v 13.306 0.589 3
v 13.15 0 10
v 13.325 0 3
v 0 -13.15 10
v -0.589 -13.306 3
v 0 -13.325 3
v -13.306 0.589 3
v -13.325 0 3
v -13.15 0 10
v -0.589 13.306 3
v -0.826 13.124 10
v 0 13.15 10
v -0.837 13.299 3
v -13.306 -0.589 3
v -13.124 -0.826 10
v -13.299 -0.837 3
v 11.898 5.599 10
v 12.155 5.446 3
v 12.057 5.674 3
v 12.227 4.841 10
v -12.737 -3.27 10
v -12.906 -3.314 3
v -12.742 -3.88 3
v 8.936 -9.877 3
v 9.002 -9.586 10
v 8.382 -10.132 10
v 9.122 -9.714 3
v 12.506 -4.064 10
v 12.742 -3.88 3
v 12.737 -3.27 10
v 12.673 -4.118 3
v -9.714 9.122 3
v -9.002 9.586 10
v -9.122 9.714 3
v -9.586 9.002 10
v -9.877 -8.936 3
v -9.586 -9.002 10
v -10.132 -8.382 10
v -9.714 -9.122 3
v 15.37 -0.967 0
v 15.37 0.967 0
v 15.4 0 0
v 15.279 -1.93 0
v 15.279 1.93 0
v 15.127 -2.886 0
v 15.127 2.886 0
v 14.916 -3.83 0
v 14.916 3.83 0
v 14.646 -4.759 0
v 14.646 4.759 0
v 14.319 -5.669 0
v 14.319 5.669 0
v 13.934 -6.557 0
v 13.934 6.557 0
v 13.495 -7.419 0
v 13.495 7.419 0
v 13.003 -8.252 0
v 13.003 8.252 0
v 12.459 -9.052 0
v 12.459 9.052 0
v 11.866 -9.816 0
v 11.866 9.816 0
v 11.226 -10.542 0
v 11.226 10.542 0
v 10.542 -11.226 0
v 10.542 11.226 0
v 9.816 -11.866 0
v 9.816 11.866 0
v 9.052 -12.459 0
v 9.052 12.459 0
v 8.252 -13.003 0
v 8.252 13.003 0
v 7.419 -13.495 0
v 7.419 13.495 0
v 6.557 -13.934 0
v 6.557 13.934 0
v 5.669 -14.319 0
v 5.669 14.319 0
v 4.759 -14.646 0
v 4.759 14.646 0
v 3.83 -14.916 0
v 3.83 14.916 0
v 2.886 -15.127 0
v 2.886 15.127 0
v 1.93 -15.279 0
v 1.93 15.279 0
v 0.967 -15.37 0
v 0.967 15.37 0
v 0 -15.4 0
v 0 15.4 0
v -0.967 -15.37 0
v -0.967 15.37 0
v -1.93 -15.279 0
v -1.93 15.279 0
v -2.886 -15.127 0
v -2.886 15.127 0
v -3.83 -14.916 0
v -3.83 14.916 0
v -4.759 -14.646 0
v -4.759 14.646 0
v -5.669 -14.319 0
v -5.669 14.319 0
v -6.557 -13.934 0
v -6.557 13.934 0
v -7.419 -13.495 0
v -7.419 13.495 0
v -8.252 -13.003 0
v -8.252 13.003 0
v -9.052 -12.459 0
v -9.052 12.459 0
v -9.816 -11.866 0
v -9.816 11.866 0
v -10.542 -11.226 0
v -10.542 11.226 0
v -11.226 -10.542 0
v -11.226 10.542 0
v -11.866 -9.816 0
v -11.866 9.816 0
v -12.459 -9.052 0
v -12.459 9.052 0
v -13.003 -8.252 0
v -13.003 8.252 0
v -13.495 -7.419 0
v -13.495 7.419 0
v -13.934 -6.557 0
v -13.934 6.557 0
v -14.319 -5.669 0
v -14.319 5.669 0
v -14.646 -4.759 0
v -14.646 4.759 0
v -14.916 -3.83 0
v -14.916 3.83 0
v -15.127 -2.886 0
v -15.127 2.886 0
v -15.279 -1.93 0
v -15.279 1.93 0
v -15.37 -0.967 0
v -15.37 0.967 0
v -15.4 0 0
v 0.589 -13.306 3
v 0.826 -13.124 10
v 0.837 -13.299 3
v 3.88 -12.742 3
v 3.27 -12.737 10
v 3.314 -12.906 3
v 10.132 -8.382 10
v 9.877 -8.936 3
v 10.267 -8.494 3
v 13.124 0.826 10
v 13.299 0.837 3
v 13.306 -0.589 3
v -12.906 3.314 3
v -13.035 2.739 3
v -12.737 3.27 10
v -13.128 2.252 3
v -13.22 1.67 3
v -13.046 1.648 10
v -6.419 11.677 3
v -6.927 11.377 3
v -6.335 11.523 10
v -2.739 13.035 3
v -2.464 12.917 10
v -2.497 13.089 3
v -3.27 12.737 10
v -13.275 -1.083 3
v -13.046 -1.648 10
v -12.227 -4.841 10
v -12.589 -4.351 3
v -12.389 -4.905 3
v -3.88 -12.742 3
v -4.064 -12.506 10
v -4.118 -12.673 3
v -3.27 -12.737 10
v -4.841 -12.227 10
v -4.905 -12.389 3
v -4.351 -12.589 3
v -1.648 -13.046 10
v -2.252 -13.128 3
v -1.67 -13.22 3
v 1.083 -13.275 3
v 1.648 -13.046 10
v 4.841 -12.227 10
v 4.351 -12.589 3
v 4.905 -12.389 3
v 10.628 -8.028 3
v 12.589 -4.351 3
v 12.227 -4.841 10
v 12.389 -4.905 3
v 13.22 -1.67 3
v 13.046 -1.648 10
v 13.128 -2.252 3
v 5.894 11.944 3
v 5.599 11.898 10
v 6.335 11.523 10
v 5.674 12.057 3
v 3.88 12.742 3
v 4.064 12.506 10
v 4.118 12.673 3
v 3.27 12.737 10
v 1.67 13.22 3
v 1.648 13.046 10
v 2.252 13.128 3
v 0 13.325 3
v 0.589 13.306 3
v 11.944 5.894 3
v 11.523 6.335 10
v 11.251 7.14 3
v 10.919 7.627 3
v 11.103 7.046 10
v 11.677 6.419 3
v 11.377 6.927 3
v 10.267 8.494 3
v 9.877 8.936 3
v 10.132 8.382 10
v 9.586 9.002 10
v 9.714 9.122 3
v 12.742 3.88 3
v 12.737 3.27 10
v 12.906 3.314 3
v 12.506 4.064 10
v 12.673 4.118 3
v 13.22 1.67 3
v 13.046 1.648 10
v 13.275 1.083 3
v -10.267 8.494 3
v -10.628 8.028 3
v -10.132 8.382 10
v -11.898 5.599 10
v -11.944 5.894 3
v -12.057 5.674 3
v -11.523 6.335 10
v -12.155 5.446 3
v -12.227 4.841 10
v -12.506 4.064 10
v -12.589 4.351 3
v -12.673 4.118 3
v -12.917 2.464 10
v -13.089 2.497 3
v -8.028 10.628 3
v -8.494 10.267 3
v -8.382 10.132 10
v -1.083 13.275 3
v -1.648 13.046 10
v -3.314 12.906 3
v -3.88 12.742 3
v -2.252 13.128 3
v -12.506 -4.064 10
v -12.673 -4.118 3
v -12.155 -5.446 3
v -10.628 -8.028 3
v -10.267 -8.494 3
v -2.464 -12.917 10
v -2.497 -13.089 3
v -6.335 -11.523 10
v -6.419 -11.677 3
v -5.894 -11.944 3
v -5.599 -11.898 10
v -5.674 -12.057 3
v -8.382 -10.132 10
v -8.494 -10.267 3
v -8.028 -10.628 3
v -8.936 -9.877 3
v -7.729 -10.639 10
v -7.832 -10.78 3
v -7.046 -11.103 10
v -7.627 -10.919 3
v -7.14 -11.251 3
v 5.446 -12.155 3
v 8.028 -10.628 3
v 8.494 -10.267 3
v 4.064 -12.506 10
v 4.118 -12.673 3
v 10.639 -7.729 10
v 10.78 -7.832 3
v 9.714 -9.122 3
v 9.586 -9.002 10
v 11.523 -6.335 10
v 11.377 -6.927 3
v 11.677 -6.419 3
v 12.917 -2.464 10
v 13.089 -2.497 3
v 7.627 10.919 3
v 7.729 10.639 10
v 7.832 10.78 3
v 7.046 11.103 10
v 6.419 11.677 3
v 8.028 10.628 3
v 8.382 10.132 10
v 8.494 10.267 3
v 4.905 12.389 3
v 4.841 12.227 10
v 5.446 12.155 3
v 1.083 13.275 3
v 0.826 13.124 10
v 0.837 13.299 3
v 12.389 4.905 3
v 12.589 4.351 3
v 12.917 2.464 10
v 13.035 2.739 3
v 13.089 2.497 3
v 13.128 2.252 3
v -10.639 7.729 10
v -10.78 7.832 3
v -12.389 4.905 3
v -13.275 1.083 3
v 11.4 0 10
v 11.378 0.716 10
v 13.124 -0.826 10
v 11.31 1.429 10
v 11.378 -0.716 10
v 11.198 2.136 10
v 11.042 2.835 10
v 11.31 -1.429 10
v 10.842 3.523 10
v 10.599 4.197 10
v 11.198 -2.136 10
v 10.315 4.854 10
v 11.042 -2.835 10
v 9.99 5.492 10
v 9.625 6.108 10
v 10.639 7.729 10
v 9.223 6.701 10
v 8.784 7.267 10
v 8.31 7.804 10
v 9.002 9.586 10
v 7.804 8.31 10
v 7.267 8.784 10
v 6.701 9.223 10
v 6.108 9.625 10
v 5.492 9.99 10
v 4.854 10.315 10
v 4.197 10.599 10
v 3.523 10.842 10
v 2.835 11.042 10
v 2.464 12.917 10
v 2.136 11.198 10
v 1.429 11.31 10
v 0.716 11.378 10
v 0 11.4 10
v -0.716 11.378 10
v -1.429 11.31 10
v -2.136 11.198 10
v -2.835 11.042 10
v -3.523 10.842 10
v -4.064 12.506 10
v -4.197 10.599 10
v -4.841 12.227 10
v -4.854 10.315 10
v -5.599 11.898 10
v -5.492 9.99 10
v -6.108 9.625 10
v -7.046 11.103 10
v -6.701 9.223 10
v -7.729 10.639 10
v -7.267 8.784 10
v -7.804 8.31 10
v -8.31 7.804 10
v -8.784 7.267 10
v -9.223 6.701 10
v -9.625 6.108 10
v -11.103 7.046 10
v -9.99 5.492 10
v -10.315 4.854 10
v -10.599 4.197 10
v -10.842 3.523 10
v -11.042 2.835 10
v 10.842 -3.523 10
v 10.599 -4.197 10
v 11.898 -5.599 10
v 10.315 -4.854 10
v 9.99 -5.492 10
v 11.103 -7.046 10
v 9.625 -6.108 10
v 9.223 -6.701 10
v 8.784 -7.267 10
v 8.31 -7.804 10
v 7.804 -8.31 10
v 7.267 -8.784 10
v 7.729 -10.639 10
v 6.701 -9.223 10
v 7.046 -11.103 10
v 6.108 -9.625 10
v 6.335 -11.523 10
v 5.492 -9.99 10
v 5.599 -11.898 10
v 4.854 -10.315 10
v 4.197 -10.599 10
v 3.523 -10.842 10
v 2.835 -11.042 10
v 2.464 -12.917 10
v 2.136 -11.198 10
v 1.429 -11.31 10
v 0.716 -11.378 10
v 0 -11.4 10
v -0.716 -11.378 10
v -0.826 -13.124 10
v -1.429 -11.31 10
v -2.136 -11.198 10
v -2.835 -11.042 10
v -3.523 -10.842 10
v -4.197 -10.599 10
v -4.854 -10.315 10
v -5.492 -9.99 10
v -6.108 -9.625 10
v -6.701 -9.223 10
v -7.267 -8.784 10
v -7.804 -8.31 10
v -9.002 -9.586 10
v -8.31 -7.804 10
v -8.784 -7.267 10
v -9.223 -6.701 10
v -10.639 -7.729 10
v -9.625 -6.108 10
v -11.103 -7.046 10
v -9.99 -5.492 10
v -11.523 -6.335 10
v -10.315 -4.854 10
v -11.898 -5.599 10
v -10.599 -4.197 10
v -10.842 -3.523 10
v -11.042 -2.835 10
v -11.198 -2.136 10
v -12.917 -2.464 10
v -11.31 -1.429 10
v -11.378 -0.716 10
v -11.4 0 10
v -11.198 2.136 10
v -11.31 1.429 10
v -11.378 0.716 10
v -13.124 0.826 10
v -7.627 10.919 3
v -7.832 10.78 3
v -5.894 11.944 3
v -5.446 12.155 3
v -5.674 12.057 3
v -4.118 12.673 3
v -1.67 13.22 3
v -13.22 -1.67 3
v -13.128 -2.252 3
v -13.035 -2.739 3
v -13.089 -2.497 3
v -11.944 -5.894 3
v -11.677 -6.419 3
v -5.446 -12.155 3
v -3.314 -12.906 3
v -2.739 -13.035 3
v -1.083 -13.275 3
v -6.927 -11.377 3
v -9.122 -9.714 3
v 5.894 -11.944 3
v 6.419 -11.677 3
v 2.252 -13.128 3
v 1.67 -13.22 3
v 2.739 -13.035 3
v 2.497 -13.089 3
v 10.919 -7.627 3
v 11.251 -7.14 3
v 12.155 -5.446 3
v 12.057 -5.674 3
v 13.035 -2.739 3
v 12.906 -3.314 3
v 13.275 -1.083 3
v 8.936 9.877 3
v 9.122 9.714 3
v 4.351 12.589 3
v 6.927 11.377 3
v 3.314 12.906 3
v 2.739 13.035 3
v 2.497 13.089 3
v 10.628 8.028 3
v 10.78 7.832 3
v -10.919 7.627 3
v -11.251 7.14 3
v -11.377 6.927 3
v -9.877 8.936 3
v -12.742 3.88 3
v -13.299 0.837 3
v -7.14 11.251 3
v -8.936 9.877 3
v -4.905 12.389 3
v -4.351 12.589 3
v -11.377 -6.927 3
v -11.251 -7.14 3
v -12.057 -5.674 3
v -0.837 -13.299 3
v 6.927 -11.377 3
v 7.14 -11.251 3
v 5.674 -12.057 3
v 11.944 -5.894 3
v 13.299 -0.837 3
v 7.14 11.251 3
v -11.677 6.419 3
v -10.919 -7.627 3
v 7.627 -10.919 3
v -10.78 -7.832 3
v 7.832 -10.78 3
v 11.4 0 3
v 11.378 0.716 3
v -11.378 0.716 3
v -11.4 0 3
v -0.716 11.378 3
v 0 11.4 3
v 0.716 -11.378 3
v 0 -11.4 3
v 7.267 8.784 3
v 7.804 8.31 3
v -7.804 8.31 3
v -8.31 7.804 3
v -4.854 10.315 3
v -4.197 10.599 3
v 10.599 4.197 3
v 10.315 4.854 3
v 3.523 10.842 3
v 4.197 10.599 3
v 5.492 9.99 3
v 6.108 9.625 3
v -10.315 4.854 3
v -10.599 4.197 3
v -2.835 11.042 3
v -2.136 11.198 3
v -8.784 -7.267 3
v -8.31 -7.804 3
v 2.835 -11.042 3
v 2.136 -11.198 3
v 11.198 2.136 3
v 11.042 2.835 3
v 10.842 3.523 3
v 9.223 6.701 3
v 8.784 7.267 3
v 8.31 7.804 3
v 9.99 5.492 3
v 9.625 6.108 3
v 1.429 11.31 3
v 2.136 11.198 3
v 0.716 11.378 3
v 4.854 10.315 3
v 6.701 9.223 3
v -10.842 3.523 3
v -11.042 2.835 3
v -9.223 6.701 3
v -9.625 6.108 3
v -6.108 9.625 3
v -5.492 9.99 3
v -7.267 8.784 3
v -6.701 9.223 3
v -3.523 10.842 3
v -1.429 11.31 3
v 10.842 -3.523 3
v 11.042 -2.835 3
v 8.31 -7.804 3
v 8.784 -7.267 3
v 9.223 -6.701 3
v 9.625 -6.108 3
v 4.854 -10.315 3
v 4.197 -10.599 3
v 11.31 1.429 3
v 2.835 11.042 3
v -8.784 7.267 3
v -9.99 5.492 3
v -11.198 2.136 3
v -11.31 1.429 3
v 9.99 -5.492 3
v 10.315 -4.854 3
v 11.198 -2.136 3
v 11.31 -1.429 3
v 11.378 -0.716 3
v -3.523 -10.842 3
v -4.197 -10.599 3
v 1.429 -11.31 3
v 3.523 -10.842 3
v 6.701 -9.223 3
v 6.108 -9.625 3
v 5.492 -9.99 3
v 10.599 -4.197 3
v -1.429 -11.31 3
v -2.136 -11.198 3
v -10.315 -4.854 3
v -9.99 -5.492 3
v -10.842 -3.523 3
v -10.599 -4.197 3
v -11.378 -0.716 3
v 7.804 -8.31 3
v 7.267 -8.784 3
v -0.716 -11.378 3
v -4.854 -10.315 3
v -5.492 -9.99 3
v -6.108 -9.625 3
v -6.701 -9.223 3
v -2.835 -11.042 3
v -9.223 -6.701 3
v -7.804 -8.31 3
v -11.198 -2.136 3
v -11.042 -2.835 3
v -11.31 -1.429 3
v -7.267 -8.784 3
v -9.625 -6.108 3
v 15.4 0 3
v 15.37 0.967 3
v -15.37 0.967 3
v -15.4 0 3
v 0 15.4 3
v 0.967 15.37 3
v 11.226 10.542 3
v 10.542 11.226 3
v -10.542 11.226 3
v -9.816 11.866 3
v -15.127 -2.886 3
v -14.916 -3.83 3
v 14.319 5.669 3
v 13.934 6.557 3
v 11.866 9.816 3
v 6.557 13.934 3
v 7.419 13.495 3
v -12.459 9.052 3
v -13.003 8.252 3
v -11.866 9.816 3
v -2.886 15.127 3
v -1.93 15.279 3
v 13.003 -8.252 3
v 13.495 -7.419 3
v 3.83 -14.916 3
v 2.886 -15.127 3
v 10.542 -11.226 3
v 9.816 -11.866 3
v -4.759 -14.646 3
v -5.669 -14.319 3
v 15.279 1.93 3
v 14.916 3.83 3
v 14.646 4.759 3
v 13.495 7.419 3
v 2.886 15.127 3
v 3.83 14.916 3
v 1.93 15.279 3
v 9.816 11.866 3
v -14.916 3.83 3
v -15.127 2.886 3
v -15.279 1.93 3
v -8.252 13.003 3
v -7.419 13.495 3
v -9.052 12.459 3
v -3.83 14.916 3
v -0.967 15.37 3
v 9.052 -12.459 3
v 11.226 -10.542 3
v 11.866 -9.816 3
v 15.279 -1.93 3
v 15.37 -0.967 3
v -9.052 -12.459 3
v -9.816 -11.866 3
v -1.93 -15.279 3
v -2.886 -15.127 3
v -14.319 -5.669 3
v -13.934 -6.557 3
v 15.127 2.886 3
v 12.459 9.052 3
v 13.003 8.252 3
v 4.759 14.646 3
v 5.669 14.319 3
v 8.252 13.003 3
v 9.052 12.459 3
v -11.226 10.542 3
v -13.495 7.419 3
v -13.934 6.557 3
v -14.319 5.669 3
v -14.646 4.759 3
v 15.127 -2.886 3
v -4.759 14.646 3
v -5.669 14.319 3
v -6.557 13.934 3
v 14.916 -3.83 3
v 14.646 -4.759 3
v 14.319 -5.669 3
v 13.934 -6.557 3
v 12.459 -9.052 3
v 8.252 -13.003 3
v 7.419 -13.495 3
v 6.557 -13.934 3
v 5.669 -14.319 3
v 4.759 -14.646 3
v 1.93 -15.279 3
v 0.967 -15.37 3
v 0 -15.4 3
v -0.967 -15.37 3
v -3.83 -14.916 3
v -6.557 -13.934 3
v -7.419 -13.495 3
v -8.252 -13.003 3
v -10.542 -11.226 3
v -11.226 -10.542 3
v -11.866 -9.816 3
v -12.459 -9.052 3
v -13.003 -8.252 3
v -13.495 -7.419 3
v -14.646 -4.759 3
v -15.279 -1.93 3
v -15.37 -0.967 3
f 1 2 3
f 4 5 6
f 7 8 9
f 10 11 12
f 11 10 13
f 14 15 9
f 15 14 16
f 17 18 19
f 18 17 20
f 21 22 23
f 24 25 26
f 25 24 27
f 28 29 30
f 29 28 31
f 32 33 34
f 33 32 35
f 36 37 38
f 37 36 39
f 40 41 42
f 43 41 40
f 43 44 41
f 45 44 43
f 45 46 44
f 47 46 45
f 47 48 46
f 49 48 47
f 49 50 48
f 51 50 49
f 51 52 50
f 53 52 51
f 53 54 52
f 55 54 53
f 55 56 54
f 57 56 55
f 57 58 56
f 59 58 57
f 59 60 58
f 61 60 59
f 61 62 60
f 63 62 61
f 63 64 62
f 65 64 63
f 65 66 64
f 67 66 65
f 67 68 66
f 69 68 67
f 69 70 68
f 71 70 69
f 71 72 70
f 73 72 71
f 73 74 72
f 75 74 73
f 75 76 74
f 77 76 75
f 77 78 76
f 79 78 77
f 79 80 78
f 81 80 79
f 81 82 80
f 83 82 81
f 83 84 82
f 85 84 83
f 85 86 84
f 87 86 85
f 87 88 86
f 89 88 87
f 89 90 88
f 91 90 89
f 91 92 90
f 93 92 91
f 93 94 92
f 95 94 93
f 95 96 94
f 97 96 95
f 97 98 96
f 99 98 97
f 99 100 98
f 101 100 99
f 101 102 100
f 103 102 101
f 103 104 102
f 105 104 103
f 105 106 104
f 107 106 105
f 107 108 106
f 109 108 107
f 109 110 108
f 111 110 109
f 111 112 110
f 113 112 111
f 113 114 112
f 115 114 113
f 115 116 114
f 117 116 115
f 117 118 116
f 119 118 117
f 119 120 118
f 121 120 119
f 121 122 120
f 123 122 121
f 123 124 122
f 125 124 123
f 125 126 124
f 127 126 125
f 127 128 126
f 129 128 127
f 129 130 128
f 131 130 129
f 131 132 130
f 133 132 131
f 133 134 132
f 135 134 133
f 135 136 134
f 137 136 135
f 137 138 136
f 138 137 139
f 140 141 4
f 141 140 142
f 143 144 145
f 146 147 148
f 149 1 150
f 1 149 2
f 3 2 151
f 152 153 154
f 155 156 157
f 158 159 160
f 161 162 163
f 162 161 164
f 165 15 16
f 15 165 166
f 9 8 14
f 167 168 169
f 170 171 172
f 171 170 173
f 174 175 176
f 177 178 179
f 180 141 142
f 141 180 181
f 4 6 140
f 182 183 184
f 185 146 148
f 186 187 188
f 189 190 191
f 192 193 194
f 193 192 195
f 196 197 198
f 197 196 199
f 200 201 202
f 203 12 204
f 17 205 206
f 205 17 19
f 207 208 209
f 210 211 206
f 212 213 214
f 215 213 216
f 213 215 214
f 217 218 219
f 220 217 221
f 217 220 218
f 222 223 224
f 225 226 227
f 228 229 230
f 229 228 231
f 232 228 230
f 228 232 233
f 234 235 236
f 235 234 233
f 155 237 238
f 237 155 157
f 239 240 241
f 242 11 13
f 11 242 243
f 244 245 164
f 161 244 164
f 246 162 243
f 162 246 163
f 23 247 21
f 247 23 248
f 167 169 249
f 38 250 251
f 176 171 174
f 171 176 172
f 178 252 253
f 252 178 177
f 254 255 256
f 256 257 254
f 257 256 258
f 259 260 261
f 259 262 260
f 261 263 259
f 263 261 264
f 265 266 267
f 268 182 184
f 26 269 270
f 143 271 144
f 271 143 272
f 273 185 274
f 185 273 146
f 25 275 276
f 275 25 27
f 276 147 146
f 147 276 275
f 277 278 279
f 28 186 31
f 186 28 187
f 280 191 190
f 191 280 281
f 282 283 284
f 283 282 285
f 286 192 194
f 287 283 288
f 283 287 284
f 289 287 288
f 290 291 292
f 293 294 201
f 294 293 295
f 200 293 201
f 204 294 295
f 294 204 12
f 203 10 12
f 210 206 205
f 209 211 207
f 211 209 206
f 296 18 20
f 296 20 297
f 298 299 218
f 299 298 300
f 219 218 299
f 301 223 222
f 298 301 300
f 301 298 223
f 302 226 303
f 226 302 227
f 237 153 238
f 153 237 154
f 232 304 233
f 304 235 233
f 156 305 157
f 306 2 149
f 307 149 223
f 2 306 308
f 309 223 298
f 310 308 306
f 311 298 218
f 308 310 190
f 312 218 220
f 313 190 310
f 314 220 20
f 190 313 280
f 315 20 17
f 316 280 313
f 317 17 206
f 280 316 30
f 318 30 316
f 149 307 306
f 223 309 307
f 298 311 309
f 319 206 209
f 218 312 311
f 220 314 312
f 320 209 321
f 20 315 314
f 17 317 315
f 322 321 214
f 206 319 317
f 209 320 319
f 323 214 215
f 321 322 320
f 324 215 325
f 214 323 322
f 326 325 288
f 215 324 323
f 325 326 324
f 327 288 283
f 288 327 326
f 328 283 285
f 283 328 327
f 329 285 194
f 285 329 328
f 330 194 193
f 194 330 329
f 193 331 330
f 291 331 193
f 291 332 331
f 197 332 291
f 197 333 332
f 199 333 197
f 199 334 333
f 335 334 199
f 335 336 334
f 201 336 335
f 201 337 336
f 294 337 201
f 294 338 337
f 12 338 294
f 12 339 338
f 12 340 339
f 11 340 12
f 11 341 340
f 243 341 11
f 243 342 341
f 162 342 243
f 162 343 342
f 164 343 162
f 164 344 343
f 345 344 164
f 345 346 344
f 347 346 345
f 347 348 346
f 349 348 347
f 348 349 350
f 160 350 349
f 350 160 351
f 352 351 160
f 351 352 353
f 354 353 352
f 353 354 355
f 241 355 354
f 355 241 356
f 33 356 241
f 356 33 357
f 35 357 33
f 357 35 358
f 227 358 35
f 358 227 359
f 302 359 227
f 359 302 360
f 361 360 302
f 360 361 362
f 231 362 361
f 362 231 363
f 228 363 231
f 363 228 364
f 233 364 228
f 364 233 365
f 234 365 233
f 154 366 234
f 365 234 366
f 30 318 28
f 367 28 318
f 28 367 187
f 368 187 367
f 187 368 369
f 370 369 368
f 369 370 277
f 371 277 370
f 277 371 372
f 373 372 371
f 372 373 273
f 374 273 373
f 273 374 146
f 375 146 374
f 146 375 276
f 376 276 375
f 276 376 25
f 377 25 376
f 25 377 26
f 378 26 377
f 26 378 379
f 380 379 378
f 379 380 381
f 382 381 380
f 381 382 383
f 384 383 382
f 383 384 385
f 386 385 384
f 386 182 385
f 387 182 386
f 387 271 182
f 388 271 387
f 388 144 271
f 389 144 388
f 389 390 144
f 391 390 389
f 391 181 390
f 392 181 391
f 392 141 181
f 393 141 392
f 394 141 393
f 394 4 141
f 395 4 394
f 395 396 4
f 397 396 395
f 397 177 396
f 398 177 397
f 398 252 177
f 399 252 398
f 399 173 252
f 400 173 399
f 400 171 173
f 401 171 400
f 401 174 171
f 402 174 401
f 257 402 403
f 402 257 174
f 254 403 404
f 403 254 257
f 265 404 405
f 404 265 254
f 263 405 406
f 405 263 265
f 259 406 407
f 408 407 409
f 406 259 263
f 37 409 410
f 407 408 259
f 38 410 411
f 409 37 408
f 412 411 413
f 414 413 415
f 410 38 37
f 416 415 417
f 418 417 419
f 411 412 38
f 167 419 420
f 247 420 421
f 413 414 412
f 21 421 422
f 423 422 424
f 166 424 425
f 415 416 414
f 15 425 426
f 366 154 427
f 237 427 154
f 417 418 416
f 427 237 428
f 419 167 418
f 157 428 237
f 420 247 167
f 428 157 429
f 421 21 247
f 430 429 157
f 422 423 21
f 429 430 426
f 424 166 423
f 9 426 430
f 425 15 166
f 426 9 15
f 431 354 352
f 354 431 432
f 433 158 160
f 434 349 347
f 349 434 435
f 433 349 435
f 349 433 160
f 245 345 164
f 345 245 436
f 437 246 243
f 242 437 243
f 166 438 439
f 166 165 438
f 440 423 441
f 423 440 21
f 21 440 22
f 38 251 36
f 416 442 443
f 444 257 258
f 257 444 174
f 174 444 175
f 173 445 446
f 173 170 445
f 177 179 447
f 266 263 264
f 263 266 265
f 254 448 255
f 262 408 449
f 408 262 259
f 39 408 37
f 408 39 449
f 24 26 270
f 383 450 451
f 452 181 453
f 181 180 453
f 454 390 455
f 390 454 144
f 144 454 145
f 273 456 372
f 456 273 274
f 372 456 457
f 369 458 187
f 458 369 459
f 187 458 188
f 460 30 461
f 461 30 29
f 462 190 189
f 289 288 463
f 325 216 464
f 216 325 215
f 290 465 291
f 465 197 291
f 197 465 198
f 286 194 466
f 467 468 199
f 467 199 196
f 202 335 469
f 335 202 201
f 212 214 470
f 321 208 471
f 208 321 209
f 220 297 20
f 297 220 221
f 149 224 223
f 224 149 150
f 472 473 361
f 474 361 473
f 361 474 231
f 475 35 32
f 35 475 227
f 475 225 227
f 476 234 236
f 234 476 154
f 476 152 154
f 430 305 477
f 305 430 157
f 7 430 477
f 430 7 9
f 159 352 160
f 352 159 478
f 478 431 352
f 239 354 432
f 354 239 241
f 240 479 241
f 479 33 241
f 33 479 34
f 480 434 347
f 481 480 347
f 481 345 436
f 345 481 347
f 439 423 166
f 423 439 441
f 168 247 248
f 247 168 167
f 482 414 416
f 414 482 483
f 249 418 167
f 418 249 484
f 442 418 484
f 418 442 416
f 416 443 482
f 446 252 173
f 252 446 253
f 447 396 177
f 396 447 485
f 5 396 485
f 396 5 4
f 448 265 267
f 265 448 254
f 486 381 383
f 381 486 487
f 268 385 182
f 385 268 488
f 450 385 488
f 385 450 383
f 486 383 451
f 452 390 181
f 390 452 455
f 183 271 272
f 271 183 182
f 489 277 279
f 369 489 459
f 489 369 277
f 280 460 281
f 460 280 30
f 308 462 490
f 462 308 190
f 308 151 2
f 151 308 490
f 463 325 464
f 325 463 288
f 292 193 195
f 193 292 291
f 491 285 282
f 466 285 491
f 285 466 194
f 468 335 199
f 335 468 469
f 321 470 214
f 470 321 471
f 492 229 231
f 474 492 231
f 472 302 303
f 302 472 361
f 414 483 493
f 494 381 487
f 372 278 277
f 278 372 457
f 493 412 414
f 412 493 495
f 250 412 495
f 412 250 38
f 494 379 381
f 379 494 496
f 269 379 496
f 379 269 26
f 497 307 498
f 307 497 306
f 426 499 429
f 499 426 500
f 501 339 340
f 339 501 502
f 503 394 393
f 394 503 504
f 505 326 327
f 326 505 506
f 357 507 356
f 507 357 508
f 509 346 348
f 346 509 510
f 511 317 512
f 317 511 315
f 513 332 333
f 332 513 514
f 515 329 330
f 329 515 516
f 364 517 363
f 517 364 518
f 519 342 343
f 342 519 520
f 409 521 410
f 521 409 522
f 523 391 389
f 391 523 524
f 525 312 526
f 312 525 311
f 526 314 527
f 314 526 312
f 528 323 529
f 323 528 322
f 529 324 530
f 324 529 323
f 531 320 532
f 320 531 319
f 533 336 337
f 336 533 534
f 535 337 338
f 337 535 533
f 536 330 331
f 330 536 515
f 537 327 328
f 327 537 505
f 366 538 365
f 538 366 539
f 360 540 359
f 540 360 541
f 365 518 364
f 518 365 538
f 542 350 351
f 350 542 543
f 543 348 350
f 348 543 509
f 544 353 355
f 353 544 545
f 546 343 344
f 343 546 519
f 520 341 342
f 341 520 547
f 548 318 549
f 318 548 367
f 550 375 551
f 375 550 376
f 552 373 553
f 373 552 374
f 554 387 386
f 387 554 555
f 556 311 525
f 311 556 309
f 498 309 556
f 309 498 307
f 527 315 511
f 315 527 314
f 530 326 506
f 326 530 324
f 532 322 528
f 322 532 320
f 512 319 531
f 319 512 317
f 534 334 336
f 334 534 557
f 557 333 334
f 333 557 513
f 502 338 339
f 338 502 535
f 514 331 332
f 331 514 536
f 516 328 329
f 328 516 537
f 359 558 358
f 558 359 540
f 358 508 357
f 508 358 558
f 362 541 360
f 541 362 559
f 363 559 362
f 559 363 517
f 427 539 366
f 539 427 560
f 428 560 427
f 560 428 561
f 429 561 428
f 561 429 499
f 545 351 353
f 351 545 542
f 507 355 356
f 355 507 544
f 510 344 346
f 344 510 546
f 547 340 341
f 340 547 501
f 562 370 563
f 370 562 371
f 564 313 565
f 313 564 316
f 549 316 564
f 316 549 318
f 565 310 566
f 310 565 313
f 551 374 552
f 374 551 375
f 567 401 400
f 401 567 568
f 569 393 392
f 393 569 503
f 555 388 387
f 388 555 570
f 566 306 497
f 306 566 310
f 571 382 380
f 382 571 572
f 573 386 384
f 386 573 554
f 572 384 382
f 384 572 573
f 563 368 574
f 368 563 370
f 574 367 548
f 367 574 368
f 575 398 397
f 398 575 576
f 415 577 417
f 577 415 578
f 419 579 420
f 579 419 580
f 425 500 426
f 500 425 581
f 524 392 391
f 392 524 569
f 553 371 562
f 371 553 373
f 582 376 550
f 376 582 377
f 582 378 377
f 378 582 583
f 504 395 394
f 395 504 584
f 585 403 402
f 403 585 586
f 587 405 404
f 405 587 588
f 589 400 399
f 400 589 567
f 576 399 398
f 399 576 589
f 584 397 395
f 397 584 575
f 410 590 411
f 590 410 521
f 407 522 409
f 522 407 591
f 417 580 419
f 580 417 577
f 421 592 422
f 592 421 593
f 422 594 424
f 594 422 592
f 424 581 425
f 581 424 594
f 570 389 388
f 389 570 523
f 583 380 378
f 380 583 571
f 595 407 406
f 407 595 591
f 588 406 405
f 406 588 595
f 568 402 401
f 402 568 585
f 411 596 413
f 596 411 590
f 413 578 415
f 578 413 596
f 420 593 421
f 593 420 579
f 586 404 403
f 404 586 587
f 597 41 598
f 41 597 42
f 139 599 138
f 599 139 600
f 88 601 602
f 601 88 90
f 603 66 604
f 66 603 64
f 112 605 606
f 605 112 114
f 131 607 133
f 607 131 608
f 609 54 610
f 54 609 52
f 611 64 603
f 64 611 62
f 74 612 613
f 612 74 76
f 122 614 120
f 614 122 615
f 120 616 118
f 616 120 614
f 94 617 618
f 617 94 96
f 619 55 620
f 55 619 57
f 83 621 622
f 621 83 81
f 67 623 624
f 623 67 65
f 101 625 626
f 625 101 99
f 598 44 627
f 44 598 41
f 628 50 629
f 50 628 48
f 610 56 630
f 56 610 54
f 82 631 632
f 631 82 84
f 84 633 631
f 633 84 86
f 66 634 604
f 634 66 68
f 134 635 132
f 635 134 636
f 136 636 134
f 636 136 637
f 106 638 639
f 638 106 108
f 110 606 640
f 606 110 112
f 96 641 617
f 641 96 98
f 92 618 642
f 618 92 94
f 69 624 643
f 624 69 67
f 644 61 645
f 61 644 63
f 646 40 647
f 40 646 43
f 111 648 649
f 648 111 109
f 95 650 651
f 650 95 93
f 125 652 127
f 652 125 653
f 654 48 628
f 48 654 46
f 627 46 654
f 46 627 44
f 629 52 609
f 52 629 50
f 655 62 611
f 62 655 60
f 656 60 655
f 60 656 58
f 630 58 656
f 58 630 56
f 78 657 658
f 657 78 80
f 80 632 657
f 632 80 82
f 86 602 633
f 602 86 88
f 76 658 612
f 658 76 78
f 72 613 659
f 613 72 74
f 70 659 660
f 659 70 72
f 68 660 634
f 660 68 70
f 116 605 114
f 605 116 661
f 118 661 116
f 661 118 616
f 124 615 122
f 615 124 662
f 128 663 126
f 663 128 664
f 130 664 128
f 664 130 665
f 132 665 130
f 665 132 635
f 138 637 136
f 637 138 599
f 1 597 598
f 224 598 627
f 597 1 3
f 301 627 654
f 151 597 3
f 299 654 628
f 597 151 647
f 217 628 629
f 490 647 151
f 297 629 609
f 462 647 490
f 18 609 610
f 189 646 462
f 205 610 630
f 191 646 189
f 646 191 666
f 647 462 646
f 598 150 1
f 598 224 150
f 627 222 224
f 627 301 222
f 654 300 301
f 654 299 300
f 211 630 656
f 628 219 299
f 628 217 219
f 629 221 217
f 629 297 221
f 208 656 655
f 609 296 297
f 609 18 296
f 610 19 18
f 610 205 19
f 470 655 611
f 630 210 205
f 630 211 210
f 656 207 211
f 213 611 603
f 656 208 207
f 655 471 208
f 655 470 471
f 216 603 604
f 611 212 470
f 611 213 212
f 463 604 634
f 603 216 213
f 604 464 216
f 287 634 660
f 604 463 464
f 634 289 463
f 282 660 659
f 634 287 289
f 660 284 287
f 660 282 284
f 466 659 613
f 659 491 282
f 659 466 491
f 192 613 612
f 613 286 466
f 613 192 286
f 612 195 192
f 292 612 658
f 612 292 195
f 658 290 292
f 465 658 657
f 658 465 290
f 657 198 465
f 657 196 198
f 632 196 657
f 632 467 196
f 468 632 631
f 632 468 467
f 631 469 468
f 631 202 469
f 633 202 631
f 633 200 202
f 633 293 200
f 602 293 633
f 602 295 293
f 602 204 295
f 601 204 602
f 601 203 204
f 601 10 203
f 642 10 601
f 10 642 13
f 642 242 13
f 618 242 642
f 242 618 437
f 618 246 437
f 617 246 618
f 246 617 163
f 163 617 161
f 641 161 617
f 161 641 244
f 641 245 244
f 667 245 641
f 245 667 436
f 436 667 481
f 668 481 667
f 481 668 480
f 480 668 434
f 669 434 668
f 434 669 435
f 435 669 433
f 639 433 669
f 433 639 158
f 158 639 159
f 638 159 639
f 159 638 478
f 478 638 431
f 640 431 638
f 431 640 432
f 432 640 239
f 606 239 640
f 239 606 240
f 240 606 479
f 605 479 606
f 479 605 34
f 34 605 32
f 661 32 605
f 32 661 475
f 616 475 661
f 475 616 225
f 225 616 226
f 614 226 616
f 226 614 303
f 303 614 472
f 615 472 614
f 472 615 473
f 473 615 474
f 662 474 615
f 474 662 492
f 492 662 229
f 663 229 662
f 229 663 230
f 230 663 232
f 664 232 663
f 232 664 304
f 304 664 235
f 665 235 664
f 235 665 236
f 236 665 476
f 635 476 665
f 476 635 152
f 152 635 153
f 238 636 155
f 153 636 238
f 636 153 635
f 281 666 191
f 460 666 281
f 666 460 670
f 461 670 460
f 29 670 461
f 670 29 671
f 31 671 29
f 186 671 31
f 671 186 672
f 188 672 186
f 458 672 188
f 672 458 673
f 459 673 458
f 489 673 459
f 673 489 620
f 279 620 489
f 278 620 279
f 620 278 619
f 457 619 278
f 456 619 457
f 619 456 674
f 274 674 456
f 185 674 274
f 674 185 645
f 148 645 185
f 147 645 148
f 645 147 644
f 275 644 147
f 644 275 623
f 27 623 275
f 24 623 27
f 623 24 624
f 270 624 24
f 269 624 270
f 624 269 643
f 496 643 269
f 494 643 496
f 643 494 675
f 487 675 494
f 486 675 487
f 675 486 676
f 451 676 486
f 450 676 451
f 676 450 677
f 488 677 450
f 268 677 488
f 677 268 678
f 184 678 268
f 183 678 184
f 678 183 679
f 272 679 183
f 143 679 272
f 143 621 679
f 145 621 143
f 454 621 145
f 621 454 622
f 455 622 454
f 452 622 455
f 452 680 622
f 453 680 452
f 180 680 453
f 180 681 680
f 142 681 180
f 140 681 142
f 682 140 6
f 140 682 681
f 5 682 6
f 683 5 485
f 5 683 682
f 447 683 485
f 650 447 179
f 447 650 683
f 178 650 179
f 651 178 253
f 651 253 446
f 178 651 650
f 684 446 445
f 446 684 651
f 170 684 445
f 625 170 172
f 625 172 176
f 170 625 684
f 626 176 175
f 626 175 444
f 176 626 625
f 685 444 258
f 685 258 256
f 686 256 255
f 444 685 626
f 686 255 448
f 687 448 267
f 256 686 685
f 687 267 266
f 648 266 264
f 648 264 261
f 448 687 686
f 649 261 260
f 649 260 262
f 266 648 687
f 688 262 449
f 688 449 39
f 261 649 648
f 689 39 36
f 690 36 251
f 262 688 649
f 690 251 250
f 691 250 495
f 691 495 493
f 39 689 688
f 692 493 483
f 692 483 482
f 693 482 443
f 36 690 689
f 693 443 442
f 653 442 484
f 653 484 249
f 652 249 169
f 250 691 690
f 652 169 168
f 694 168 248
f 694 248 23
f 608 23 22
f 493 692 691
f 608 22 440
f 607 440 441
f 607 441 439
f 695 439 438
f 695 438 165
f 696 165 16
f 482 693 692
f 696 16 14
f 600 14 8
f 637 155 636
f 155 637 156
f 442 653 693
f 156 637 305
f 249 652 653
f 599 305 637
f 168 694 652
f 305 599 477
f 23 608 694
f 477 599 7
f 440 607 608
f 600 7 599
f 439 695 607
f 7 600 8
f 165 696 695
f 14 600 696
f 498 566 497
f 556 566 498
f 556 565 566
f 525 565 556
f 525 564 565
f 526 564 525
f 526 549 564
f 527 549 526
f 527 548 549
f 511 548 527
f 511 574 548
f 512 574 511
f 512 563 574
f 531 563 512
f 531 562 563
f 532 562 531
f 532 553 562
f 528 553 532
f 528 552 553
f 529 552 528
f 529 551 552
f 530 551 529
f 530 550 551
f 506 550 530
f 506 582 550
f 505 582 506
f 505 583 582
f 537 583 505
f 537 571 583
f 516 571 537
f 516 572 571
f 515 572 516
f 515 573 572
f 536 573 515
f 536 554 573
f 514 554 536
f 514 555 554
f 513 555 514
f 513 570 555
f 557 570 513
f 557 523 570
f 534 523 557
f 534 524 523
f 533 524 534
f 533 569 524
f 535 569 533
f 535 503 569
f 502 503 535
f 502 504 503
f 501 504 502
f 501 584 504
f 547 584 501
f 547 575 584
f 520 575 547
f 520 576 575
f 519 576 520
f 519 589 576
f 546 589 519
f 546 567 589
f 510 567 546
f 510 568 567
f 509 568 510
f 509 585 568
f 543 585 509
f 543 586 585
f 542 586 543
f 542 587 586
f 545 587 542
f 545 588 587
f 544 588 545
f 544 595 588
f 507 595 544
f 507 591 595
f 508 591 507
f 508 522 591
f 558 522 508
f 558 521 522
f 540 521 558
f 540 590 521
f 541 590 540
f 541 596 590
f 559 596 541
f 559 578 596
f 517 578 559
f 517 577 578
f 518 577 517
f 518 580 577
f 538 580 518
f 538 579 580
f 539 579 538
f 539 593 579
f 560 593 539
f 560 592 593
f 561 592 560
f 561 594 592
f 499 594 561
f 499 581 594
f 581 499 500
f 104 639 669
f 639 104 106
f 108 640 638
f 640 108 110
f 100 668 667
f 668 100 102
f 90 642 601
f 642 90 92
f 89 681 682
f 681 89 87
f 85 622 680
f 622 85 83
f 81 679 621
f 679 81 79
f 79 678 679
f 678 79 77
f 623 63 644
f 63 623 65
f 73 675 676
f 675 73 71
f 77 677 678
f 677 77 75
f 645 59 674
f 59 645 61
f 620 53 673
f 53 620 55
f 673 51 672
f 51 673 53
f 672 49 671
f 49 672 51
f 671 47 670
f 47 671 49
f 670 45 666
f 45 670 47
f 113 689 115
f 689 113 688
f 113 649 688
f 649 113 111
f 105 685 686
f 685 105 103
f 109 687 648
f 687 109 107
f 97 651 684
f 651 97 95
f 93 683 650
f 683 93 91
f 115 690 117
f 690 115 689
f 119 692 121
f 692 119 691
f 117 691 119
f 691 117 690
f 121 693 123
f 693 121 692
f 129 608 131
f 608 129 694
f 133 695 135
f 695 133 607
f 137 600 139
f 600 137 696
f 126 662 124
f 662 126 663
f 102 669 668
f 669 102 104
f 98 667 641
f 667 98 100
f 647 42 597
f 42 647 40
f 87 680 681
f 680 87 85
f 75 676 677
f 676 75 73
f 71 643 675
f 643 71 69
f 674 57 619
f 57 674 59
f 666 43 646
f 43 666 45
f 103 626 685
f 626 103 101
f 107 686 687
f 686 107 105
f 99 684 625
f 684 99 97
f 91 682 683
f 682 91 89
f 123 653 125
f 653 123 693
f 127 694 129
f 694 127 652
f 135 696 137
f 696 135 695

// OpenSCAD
// pvc pipe plug

$fn=100;

PR=13.4; //enter inner pvc pipe radius here (for 1" pvc pipe, PR=13.2; for 32mm 13.4; for standard 1" PVC fitting, PR=16.90)

difference(){
    cylinder(10,PR,PR-0.25); 
    cylinder(30,PR-2,PR-2);
    }

cylinder(3,PR+2,PR+2); 
